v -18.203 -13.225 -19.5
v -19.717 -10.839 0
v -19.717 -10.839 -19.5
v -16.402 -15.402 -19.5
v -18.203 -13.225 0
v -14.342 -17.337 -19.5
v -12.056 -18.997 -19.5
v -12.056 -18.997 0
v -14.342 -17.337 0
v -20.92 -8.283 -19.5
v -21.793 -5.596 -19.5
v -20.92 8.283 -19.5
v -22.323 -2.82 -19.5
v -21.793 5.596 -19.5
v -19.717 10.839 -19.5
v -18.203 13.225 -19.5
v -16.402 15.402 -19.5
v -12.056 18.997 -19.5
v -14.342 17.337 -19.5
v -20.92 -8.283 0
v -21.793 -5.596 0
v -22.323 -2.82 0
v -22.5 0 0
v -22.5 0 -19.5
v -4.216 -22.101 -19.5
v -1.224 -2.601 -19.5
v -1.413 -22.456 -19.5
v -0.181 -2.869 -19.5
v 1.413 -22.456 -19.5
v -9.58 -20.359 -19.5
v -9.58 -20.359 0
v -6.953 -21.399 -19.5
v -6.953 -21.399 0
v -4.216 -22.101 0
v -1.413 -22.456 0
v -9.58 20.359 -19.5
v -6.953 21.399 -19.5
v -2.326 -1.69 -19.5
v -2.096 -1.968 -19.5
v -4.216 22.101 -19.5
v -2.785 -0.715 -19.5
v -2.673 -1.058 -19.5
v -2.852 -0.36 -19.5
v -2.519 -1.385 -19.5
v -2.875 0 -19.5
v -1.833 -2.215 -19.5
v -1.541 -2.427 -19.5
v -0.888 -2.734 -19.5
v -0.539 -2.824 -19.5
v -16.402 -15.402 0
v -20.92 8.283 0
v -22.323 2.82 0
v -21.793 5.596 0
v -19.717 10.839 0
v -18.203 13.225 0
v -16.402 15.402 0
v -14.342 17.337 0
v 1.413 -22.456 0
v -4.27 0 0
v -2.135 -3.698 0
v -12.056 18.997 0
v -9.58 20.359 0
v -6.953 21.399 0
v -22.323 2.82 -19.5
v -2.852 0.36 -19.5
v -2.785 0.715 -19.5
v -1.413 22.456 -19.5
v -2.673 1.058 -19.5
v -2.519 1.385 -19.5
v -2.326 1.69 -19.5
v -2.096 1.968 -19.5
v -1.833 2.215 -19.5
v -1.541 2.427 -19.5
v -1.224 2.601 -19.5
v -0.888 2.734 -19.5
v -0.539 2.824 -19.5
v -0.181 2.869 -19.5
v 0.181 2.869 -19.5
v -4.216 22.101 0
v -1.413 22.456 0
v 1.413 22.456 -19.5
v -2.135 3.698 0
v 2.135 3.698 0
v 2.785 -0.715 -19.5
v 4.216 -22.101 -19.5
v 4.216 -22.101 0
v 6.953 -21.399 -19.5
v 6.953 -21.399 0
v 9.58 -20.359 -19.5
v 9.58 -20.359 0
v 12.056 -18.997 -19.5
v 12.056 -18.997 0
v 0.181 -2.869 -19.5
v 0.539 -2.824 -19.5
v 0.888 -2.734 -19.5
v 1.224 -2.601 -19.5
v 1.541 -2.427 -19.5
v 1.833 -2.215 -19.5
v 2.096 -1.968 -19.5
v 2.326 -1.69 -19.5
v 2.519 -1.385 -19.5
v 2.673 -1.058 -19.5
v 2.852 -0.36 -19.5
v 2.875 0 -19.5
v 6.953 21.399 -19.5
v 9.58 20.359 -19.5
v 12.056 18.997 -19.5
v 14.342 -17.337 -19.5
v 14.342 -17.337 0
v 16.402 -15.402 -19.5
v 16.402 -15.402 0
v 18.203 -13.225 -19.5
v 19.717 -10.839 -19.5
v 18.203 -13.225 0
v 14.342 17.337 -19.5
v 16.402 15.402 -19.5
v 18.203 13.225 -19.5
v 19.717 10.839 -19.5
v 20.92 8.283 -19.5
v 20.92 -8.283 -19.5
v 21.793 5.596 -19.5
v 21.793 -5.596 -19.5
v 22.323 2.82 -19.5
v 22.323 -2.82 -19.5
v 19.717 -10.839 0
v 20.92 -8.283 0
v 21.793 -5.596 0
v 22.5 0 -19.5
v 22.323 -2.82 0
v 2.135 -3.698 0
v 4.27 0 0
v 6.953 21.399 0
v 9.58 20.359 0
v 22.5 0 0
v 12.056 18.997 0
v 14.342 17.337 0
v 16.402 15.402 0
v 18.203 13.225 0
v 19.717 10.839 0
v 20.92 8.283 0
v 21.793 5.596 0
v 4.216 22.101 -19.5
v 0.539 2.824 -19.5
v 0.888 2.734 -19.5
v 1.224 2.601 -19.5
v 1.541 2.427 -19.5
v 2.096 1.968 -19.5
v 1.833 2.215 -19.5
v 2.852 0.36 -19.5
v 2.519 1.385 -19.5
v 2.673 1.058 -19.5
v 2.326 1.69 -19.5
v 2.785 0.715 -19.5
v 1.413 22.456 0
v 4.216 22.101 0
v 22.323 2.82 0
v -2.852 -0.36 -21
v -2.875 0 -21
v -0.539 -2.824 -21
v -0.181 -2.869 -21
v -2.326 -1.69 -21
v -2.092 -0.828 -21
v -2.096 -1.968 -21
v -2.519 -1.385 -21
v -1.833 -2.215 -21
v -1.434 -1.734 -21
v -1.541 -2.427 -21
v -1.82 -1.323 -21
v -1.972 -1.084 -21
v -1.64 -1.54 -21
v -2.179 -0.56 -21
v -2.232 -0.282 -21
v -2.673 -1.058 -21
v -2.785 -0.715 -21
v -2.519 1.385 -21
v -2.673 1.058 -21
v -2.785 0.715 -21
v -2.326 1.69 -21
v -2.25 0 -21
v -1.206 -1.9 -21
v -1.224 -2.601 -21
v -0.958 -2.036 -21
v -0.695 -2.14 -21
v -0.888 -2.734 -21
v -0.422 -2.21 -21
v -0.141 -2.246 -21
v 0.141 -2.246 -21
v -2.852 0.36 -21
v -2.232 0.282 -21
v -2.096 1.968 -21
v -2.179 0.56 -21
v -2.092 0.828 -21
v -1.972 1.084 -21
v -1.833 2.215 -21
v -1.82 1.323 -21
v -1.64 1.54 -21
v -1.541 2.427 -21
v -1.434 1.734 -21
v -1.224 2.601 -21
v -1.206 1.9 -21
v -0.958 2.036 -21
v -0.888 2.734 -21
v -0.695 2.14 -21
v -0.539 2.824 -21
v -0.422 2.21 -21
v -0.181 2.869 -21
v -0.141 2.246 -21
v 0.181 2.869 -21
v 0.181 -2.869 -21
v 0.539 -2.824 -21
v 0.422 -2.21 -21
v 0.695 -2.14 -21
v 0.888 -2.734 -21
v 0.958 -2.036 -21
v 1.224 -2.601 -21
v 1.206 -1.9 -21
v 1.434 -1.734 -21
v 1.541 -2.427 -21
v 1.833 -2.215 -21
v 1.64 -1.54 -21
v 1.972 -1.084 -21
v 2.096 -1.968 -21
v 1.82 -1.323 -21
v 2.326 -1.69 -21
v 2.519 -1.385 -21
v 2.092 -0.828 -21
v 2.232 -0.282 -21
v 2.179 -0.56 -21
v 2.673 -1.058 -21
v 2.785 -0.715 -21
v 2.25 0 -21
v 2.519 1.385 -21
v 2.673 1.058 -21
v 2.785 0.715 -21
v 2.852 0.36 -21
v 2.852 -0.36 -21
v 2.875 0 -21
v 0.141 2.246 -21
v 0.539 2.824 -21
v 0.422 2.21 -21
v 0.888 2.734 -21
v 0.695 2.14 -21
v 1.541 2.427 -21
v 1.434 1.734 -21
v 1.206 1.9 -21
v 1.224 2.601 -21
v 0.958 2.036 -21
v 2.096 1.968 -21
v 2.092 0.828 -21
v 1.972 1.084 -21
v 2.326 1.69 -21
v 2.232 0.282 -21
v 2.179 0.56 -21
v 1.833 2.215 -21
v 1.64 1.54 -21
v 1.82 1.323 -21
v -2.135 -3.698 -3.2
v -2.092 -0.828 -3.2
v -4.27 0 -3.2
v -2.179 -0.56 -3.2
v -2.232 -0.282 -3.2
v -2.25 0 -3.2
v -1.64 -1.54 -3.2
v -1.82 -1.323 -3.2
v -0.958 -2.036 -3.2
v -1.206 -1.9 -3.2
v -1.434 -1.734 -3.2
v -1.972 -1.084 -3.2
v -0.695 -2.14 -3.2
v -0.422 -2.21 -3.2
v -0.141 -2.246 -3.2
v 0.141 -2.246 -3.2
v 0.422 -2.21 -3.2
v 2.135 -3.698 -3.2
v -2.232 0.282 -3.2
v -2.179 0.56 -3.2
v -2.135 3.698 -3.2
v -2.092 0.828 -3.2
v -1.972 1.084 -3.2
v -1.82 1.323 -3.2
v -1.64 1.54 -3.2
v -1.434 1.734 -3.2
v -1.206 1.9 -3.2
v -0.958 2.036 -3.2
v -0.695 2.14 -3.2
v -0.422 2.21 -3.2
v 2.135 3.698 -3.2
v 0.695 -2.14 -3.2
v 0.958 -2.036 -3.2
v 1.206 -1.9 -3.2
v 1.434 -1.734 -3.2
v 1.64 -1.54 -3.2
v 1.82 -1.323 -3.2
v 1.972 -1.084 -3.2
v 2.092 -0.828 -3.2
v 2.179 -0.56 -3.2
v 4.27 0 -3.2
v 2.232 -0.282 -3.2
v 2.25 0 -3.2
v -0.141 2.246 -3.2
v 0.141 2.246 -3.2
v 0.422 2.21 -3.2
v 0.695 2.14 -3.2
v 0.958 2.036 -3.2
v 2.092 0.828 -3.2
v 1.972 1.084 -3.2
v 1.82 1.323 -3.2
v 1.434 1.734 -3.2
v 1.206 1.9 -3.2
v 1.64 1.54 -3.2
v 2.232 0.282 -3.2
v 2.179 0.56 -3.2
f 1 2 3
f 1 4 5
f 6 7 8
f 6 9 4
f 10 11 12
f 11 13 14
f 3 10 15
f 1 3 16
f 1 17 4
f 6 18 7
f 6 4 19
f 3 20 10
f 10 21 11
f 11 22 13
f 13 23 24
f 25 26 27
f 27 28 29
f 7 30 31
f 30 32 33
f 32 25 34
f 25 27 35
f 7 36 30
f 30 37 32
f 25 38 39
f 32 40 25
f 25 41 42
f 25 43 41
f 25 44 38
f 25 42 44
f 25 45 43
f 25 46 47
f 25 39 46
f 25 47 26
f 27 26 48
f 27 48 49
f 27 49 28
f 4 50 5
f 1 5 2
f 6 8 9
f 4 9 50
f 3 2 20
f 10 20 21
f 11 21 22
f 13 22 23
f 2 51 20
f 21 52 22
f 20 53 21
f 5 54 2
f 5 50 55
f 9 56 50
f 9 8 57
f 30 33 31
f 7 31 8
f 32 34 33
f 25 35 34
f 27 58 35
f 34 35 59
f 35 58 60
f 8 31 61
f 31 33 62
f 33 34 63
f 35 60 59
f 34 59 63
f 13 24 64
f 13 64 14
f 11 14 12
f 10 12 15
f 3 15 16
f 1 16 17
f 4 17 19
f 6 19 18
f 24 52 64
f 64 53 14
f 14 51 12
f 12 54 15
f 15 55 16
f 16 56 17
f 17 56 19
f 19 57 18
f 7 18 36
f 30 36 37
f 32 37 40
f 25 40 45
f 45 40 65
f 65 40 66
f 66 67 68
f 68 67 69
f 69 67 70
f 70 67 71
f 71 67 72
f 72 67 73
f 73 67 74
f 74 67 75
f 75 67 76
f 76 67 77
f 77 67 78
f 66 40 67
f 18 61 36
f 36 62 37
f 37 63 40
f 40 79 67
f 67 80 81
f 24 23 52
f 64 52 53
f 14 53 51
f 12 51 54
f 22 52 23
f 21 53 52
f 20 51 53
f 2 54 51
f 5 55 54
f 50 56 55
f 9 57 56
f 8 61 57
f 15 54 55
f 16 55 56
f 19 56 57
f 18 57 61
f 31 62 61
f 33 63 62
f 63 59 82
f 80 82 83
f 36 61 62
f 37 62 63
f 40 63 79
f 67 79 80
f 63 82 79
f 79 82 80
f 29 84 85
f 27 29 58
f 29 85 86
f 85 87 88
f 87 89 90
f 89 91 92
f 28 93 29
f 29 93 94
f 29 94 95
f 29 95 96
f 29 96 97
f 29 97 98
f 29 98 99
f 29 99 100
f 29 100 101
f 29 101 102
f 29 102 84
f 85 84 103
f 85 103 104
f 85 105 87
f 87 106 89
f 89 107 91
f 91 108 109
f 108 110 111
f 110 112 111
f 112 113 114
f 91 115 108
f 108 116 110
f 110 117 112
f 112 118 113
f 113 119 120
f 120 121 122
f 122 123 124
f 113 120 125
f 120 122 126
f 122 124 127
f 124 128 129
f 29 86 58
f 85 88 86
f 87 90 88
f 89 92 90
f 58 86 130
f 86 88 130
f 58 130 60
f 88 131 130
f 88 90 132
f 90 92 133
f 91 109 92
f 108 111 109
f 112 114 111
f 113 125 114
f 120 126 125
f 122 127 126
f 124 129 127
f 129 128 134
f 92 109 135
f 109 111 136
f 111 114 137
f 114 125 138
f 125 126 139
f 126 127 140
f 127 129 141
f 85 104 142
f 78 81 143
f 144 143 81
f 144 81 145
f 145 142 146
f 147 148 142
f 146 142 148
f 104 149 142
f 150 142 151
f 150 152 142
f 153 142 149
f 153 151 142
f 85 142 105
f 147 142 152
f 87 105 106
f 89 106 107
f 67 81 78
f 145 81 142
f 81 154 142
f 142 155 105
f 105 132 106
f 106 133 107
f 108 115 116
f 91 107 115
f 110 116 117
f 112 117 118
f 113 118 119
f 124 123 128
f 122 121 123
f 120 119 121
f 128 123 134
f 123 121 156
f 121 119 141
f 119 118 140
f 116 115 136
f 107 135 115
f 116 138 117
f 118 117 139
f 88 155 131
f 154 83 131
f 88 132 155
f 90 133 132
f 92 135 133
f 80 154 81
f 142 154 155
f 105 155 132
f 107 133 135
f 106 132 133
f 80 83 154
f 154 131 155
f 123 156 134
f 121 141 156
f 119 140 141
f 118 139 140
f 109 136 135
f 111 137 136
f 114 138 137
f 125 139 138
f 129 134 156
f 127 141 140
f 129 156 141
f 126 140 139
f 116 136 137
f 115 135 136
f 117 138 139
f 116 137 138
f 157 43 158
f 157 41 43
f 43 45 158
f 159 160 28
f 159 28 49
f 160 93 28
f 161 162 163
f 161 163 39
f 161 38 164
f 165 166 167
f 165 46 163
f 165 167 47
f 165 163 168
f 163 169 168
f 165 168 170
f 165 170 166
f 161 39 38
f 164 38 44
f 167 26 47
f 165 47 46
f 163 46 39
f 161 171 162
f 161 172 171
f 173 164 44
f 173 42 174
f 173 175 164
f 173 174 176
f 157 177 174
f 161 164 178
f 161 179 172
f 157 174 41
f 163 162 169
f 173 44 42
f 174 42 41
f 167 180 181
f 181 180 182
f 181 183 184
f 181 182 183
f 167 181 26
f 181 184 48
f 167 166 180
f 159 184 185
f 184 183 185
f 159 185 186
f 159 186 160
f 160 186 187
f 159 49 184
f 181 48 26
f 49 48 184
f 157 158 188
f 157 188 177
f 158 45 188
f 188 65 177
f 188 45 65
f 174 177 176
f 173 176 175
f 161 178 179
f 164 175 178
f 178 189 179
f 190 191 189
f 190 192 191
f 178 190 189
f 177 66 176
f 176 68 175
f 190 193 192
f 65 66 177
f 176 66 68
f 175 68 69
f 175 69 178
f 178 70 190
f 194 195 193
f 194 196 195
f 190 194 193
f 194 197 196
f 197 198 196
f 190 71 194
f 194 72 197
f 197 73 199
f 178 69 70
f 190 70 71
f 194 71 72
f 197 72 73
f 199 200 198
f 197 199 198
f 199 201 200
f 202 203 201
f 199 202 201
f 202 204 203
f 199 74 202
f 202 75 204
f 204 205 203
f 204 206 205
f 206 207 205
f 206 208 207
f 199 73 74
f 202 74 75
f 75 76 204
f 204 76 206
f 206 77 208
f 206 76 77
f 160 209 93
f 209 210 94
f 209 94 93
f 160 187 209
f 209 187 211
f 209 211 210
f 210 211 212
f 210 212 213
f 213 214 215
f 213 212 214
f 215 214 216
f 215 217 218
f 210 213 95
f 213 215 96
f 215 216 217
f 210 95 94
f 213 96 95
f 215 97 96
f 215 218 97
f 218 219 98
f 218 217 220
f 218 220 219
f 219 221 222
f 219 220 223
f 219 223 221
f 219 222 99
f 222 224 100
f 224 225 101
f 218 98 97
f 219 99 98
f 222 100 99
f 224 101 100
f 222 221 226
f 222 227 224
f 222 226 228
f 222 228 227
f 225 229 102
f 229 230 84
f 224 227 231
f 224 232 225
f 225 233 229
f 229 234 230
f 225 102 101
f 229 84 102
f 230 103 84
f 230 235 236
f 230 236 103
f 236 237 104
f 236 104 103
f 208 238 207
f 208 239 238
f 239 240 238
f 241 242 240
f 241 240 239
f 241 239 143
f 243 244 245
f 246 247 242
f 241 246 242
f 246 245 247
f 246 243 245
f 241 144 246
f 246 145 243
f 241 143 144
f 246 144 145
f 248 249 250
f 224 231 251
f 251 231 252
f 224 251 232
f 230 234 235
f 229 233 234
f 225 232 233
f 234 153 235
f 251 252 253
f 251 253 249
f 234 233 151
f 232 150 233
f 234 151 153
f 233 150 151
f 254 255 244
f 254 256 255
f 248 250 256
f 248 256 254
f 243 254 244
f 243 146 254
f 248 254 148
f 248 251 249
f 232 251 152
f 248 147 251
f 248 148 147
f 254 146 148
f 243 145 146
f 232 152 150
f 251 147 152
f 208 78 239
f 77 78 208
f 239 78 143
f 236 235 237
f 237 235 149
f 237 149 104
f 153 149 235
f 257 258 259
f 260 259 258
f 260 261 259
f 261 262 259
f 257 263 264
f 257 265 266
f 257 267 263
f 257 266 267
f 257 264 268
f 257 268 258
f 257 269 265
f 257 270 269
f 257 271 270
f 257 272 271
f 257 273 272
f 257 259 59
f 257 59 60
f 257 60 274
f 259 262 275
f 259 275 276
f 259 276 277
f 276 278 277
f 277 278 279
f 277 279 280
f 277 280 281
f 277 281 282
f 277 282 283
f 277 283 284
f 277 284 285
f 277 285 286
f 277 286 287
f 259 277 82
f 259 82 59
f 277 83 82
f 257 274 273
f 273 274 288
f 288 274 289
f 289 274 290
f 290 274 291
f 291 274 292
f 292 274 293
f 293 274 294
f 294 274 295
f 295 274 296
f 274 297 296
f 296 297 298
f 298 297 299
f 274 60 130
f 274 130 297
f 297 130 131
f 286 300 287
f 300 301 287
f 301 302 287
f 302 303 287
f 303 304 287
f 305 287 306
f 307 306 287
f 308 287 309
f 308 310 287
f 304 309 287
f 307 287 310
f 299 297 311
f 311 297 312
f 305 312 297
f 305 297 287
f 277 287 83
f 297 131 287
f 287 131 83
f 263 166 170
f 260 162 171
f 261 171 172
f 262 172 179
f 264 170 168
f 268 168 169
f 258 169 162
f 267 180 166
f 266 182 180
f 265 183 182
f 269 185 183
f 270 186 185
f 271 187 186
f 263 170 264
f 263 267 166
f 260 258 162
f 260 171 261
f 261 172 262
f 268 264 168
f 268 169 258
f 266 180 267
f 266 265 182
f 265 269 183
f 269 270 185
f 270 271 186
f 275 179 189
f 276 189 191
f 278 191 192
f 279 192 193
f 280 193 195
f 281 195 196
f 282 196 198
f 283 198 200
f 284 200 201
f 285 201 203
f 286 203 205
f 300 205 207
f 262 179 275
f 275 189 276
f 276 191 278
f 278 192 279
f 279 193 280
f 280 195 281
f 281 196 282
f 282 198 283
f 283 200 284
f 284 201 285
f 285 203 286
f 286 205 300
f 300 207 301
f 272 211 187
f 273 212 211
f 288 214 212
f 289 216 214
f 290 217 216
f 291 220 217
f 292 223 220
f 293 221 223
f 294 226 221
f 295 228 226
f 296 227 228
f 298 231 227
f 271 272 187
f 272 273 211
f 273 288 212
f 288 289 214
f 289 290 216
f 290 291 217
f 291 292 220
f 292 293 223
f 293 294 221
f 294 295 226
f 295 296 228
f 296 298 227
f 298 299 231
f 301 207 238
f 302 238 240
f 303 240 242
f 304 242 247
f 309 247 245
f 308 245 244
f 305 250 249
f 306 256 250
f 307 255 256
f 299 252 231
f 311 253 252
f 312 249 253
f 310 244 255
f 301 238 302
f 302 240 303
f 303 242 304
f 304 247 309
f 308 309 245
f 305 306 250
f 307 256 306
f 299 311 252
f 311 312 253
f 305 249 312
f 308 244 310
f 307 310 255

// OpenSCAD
$fn = 50;

difference() {
	union() {
		translate(v = [0, 0, -19.5]) {
			cylinder(h = 19.5, r = 22.5);
		}
		#translate(v = [0, 0, -21.0]) {
			cylinder(h = 21, r = 2.875);
		}
	}
	union() {
		translate(v = [0, 0, 0]) {
			rotate(a = [0, 0, 0]) {
				difference() {
					union() {
						translate(v = [0, 0, -3.2]) {
							linear_extrude(height = 3.2) {
								polygon(points = [[4.2698, 0.0], [2.1349000000000005, 3.697755269078796], [-2.134899999999999, 3.6977552690787965], [-4.2698, 5.228996902999369e-16], [-2.134900000000002, -3.6977552690787956], [2.1348999999999974, -3.697755269078798]]);
							}
						}
					}
					union();
				}
			}
		}
		#translate(v = [0, 0, -100.0]) {
			cylinder(h = 200, r = 2.25);
		}
	}
}
